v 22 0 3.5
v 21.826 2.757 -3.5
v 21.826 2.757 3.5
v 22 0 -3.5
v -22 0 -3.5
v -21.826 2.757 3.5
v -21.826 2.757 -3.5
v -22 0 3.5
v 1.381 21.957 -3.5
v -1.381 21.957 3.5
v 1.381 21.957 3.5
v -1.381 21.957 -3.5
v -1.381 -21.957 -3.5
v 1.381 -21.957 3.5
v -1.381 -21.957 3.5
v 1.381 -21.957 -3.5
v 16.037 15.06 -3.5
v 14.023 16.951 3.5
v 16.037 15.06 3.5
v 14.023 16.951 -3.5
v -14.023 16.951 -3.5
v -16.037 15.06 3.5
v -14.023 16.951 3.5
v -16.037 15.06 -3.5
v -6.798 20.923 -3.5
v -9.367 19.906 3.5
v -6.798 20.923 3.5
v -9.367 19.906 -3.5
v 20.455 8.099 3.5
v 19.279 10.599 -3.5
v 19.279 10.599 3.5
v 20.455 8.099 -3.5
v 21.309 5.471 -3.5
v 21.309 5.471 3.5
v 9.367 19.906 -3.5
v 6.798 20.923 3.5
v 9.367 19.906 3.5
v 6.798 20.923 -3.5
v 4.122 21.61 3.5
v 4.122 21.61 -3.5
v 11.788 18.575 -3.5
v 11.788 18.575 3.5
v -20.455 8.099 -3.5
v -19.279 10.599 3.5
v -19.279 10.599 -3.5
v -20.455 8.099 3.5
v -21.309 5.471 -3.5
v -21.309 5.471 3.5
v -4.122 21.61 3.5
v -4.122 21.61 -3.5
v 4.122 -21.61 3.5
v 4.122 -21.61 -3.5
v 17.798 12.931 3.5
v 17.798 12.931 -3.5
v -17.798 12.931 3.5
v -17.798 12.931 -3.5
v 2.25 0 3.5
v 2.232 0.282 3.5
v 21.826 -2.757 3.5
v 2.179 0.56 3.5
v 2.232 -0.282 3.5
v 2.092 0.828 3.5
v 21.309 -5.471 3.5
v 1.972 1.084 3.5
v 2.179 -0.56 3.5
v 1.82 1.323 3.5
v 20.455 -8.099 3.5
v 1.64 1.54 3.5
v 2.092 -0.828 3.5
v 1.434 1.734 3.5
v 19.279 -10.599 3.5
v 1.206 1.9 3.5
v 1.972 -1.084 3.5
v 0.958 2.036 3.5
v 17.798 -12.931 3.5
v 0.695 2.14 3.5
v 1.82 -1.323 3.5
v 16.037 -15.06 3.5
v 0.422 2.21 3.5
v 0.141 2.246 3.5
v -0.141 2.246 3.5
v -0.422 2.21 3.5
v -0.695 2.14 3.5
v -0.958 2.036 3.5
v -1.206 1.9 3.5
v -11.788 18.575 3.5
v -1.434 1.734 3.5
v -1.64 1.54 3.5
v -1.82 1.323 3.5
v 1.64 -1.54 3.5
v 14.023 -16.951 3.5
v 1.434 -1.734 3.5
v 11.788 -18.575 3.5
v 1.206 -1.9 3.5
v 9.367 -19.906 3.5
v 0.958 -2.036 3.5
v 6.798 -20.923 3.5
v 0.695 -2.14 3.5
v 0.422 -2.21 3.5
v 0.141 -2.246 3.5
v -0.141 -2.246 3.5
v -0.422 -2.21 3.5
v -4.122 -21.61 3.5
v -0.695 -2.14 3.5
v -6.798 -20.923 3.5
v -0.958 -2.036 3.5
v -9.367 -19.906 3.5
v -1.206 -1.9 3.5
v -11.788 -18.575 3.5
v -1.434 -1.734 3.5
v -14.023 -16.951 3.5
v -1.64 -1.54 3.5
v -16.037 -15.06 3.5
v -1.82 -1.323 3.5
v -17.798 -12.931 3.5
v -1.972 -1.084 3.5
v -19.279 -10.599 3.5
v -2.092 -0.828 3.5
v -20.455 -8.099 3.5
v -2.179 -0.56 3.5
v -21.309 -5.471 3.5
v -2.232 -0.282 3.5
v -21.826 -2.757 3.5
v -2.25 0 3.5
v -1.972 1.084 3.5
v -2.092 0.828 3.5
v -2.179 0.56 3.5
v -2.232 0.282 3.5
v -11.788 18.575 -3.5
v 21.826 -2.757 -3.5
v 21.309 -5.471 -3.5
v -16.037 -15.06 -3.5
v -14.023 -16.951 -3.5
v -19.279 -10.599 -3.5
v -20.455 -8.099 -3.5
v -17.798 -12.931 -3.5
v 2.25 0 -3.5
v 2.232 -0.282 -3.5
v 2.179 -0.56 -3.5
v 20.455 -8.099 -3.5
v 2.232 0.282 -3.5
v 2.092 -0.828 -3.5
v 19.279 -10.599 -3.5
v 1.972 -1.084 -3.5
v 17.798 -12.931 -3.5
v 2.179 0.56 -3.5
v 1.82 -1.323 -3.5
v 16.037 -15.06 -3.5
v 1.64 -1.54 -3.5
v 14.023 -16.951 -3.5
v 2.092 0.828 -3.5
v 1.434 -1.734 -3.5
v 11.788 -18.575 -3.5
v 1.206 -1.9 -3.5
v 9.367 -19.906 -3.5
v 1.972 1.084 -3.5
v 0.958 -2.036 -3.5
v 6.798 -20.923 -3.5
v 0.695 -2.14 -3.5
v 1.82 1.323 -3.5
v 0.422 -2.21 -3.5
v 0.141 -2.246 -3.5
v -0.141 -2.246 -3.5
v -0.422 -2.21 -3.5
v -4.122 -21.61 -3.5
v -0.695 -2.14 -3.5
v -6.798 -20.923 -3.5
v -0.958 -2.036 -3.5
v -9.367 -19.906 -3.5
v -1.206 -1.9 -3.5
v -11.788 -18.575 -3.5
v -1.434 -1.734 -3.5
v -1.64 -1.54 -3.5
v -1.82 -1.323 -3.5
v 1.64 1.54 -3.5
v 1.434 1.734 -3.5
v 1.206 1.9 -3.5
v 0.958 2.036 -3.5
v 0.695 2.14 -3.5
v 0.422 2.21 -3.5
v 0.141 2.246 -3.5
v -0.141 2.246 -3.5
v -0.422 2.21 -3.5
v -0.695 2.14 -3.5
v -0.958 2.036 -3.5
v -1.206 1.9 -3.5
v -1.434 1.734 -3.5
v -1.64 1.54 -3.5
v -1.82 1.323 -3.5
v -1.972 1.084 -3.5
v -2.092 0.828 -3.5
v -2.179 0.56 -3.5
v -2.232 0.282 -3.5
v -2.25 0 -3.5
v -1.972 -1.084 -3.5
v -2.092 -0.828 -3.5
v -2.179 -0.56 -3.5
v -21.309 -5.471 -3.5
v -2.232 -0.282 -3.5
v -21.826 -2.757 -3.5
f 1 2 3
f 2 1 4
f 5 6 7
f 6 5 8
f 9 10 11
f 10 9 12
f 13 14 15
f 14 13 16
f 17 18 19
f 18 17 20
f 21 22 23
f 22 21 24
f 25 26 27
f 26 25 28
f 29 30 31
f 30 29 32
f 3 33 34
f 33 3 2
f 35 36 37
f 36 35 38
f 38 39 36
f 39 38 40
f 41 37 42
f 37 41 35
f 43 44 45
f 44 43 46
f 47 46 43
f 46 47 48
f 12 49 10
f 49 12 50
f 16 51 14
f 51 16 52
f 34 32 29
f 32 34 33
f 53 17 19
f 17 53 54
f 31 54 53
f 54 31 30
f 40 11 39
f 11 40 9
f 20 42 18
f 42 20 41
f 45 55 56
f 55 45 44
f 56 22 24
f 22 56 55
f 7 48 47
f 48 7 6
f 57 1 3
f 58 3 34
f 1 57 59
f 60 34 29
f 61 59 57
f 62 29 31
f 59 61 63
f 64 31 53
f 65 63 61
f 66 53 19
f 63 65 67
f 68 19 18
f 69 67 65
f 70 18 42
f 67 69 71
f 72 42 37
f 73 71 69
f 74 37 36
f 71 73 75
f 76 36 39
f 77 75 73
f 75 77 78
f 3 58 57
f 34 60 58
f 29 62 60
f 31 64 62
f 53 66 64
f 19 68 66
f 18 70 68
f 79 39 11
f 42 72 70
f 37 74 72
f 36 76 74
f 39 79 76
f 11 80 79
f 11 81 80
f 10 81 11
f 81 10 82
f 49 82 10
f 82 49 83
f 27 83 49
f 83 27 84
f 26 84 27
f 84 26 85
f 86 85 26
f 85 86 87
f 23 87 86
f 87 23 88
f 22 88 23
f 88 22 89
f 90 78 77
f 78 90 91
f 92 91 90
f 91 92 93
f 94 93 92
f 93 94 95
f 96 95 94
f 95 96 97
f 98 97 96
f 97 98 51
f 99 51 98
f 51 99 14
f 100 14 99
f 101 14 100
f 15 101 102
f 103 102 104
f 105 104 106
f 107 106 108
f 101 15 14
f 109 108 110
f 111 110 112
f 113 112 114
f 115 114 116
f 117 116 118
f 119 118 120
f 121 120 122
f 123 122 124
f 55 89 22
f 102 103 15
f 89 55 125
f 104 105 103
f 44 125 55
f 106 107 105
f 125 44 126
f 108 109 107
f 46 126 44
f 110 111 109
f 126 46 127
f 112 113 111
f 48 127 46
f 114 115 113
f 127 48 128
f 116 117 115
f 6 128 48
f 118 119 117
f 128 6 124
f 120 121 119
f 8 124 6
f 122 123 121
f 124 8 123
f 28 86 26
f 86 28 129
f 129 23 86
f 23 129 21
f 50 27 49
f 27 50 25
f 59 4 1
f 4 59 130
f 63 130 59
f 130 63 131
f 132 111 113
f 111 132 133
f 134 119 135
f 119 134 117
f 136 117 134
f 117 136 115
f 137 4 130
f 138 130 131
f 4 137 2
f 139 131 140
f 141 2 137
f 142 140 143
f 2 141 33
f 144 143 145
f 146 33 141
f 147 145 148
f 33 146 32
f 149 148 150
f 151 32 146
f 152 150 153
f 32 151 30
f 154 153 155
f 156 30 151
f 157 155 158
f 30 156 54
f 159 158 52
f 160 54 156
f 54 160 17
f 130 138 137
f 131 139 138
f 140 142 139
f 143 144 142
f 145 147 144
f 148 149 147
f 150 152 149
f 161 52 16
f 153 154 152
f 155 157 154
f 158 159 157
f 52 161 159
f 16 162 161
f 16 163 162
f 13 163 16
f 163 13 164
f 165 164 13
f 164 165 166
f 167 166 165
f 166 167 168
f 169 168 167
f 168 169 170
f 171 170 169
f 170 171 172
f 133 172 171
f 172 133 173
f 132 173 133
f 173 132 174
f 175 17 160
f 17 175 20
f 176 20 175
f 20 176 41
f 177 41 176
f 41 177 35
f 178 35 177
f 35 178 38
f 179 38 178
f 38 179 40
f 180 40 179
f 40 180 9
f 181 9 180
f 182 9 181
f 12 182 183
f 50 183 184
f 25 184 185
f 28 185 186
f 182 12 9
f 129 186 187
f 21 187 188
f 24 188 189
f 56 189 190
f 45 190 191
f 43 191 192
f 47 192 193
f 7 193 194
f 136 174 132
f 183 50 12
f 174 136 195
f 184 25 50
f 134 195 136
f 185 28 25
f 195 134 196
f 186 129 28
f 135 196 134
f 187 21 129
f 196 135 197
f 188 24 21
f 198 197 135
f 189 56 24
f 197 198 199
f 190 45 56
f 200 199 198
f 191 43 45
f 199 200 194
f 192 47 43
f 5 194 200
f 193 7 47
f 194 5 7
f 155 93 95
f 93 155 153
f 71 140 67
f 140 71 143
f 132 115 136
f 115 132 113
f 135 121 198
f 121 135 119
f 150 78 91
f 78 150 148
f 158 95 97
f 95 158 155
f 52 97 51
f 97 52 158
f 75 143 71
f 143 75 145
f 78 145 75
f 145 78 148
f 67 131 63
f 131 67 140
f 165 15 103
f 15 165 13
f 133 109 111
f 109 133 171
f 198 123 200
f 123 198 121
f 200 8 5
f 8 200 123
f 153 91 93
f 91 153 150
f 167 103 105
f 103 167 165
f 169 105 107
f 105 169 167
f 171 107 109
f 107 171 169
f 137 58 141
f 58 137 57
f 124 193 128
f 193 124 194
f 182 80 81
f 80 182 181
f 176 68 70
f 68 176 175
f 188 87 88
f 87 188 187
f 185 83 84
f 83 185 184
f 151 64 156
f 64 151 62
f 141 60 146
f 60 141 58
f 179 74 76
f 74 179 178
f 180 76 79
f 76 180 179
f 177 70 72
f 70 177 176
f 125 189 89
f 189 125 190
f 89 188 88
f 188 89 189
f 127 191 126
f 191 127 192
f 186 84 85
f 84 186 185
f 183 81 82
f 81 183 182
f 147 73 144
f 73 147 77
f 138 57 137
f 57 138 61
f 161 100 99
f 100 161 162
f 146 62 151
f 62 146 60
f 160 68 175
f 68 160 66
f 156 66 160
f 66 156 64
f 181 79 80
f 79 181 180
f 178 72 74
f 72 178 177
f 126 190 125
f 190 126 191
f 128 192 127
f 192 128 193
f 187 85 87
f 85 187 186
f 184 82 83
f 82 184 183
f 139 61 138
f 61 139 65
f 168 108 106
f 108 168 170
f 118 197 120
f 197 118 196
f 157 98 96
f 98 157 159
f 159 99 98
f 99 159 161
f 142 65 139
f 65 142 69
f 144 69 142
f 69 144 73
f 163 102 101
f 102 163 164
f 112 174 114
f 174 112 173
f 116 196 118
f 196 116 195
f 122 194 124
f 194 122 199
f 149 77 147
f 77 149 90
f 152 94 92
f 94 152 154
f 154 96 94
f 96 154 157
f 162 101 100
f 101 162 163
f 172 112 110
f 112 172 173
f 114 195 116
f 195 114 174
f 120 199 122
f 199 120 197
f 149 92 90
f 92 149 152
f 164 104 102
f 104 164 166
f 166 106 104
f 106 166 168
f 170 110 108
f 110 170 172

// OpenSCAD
$fn = 50;


difference() {
	union() {
		translate(v = [0, 0, -3.5000000000]) {
			cylinder(h = 7, r = 22.0000000000);
		}
	}
	union() {
		translate(v = [0, 0, -100.0000000000]) {
			cylinder(h = 200, r = 2.2500000000);
		}
	}
}
